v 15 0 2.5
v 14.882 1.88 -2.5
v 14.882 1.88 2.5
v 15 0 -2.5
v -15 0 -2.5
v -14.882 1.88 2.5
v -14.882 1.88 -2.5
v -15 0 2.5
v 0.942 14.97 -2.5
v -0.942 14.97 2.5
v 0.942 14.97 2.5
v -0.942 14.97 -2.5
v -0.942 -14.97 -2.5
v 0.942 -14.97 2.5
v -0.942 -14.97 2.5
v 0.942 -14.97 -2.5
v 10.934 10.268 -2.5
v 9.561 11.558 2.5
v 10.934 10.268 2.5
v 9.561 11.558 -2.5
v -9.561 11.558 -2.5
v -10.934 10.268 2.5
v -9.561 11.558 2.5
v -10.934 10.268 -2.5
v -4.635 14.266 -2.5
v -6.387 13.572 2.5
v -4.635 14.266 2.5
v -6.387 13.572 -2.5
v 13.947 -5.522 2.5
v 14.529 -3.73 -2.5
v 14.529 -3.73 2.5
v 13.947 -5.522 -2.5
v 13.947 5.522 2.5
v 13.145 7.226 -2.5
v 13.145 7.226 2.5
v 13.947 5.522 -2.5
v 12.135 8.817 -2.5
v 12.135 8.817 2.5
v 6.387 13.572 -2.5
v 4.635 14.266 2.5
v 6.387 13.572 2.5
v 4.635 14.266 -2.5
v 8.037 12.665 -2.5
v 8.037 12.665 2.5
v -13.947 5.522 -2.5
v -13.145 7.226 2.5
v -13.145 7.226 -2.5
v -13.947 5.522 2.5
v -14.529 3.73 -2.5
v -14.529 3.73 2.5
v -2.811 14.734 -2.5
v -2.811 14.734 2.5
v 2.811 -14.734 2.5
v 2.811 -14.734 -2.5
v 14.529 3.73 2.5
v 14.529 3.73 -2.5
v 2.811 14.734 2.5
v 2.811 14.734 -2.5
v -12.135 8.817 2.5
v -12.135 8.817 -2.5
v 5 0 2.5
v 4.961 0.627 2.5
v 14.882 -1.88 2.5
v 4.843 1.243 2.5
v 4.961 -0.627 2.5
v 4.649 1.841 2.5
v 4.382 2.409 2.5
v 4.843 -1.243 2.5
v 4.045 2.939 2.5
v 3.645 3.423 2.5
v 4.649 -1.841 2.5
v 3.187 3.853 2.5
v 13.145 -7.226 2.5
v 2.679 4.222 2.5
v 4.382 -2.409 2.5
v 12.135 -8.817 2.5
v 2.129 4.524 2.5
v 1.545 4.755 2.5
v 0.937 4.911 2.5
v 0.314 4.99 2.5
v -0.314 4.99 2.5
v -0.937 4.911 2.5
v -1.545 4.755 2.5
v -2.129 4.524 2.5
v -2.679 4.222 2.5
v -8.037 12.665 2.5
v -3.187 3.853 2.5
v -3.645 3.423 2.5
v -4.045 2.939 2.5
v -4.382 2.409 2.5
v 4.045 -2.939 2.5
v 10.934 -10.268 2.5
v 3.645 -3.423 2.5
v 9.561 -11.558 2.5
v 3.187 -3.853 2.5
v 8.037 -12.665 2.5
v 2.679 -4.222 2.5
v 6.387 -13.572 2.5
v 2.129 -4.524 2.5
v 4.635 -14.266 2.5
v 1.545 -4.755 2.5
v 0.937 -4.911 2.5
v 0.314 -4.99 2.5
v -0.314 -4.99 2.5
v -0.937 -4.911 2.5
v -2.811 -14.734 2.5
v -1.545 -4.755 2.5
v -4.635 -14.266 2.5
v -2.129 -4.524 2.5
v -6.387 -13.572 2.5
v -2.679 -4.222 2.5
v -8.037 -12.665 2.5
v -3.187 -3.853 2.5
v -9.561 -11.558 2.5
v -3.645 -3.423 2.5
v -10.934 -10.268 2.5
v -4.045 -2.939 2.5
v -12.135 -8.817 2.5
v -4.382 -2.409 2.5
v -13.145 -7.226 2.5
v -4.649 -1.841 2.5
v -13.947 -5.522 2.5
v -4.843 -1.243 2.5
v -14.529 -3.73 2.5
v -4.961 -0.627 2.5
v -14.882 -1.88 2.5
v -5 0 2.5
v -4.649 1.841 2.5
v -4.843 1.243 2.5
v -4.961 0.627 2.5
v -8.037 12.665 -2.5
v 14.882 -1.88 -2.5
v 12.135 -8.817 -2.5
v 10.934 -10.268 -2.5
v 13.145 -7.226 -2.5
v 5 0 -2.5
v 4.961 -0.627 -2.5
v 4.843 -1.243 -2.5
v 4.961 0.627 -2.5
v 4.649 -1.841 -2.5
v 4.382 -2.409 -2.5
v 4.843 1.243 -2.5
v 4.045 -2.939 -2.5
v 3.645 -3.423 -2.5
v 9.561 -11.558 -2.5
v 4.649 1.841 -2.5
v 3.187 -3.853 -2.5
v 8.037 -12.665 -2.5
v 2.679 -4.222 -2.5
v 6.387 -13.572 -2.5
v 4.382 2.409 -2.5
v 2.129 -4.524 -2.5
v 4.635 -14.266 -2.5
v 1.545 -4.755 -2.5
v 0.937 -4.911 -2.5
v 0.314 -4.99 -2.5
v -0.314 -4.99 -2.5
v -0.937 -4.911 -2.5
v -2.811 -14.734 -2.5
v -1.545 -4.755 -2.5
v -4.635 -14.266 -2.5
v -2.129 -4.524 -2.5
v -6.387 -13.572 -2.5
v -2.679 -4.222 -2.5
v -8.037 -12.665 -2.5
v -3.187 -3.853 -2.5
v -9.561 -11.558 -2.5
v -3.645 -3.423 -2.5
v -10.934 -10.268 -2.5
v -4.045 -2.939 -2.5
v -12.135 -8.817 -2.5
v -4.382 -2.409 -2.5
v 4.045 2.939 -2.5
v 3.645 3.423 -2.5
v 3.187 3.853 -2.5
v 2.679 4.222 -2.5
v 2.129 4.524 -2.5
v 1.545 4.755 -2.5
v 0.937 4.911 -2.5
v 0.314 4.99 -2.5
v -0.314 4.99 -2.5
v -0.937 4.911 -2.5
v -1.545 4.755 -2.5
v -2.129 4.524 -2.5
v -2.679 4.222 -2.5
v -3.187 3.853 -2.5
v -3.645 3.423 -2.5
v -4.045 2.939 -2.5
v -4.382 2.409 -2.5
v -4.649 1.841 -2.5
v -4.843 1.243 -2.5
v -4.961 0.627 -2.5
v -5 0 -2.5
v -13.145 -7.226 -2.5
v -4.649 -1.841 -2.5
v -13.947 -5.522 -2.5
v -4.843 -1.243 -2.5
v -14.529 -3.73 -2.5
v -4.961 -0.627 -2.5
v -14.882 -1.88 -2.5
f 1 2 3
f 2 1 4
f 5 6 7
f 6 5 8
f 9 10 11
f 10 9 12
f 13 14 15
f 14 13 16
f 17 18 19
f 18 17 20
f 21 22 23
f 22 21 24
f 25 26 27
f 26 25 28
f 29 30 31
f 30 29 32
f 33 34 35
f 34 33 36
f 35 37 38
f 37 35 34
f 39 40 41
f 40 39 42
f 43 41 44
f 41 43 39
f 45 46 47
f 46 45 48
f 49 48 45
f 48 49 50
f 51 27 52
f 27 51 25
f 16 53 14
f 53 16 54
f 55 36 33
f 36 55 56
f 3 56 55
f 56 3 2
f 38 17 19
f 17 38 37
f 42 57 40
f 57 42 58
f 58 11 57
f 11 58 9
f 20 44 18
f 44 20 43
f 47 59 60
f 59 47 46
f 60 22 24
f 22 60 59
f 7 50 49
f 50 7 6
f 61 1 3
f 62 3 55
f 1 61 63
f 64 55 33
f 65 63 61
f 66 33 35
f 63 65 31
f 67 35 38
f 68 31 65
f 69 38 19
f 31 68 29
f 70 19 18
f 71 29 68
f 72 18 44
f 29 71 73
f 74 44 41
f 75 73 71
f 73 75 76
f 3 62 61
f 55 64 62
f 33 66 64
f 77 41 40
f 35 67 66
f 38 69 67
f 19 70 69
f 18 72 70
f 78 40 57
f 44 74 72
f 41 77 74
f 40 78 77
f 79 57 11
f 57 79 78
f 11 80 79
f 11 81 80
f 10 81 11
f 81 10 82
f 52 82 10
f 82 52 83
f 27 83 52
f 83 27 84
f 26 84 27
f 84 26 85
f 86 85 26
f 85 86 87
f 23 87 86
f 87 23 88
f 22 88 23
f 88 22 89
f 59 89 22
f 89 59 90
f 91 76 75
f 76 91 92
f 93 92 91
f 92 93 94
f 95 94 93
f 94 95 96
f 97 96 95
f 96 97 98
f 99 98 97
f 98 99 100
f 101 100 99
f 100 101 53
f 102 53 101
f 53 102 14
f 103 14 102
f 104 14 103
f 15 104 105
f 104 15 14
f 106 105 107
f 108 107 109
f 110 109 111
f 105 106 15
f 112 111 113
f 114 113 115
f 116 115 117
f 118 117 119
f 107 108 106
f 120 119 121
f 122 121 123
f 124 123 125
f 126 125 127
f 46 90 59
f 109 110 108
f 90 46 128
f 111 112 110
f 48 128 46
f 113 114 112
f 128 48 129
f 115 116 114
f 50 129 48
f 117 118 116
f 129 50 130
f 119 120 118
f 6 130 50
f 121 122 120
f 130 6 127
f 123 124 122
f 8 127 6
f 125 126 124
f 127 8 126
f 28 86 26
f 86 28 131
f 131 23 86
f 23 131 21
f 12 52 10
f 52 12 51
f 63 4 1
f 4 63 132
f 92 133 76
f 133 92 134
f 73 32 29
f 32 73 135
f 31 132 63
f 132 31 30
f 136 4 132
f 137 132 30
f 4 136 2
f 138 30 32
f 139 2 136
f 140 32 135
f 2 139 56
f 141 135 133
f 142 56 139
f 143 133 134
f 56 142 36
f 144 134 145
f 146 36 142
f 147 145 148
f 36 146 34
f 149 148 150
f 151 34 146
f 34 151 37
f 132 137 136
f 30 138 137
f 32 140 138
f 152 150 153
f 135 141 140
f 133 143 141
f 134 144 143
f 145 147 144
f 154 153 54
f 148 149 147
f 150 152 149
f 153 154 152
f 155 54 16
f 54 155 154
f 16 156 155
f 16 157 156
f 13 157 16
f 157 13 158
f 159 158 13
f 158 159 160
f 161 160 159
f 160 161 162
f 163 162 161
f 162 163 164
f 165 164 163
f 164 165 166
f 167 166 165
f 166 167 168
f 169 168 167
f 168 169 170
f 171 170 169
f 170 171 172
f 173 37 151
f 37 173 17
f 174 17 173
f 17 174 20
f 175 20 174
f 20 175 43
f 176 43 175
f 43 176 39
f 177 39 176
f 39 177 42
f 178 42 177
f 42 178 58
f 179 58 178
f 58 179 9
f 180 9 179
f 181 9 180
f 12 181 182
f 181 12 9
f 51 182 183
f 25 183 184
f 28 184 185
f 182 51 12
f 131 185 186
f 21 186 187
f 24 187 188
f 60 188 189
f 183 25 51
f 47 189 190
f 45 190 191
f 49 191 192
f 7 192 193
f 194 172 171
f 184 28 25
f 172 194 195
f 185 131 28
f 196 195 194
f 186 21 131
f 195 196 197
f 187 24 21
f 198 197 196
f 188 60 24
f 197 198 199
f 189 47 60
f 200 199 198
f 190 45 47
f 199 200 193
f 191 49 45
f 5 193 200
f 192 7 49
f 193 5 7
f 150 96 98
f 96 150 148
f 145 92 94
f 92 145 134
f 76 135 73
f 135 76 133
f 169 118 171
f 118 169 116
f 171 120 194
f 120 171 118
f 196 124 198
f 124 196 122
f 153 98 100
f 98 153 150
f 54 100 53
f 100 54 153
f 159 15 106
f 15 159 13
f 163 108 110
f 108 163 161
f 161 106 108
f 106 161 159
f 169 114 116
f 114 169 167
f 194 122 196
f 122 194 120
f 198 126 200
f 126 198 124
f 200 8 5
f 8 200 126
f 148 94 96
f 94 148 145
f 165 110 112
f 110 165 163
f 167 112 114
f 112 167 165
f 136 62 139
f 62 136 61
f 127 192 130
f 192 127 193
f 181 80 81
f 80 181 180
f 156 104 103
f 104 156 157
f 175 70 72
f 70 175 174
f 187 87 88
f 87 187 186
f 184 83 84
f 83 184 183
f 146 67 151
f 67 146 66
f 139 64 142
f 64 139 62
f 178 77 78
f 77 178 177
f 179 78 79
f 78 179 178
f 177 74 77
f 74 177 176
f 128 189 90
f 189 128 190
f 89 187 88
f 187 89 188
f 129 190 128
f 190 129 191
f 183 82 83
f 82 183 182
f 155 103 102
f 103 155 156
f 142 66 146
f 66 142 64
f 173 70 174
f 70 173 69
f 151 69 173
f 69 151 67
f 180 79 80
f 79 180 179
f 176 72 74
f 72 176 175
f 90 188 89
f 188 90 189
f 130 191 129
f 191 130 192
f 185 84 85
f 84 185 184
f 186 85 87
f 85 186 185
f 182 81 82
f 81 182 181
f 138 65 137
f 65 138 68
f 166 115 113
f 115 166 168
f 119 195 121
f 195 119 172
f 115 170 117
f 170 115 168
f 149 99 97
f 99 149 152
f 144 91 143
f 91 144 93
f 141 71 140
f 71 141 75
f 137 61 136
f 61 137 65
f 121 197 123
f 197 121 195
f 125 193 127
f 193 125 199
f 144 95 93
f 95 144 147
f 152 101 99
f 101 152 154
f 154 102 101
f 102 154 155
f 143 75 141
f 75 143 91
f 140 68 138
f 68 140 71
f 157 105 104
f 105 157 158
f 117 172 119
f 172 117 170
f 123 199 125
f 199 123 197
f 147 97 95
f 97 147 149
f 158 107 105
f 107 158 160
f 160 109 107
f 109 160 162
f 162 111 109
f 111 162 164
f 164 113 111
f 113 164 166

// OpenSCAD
$fn = 50;


difference() {
	union() {
		translate(v = [0, 0, -2.5000000000]) {
			cylinder(h = 5, r = 15.0000000000);
		}
	}
	union() {
		translate(v = [0, 0, -100.0000000000]) {
			cylinder(h = 200, r = 5.0000000000);
		}
	}
}
